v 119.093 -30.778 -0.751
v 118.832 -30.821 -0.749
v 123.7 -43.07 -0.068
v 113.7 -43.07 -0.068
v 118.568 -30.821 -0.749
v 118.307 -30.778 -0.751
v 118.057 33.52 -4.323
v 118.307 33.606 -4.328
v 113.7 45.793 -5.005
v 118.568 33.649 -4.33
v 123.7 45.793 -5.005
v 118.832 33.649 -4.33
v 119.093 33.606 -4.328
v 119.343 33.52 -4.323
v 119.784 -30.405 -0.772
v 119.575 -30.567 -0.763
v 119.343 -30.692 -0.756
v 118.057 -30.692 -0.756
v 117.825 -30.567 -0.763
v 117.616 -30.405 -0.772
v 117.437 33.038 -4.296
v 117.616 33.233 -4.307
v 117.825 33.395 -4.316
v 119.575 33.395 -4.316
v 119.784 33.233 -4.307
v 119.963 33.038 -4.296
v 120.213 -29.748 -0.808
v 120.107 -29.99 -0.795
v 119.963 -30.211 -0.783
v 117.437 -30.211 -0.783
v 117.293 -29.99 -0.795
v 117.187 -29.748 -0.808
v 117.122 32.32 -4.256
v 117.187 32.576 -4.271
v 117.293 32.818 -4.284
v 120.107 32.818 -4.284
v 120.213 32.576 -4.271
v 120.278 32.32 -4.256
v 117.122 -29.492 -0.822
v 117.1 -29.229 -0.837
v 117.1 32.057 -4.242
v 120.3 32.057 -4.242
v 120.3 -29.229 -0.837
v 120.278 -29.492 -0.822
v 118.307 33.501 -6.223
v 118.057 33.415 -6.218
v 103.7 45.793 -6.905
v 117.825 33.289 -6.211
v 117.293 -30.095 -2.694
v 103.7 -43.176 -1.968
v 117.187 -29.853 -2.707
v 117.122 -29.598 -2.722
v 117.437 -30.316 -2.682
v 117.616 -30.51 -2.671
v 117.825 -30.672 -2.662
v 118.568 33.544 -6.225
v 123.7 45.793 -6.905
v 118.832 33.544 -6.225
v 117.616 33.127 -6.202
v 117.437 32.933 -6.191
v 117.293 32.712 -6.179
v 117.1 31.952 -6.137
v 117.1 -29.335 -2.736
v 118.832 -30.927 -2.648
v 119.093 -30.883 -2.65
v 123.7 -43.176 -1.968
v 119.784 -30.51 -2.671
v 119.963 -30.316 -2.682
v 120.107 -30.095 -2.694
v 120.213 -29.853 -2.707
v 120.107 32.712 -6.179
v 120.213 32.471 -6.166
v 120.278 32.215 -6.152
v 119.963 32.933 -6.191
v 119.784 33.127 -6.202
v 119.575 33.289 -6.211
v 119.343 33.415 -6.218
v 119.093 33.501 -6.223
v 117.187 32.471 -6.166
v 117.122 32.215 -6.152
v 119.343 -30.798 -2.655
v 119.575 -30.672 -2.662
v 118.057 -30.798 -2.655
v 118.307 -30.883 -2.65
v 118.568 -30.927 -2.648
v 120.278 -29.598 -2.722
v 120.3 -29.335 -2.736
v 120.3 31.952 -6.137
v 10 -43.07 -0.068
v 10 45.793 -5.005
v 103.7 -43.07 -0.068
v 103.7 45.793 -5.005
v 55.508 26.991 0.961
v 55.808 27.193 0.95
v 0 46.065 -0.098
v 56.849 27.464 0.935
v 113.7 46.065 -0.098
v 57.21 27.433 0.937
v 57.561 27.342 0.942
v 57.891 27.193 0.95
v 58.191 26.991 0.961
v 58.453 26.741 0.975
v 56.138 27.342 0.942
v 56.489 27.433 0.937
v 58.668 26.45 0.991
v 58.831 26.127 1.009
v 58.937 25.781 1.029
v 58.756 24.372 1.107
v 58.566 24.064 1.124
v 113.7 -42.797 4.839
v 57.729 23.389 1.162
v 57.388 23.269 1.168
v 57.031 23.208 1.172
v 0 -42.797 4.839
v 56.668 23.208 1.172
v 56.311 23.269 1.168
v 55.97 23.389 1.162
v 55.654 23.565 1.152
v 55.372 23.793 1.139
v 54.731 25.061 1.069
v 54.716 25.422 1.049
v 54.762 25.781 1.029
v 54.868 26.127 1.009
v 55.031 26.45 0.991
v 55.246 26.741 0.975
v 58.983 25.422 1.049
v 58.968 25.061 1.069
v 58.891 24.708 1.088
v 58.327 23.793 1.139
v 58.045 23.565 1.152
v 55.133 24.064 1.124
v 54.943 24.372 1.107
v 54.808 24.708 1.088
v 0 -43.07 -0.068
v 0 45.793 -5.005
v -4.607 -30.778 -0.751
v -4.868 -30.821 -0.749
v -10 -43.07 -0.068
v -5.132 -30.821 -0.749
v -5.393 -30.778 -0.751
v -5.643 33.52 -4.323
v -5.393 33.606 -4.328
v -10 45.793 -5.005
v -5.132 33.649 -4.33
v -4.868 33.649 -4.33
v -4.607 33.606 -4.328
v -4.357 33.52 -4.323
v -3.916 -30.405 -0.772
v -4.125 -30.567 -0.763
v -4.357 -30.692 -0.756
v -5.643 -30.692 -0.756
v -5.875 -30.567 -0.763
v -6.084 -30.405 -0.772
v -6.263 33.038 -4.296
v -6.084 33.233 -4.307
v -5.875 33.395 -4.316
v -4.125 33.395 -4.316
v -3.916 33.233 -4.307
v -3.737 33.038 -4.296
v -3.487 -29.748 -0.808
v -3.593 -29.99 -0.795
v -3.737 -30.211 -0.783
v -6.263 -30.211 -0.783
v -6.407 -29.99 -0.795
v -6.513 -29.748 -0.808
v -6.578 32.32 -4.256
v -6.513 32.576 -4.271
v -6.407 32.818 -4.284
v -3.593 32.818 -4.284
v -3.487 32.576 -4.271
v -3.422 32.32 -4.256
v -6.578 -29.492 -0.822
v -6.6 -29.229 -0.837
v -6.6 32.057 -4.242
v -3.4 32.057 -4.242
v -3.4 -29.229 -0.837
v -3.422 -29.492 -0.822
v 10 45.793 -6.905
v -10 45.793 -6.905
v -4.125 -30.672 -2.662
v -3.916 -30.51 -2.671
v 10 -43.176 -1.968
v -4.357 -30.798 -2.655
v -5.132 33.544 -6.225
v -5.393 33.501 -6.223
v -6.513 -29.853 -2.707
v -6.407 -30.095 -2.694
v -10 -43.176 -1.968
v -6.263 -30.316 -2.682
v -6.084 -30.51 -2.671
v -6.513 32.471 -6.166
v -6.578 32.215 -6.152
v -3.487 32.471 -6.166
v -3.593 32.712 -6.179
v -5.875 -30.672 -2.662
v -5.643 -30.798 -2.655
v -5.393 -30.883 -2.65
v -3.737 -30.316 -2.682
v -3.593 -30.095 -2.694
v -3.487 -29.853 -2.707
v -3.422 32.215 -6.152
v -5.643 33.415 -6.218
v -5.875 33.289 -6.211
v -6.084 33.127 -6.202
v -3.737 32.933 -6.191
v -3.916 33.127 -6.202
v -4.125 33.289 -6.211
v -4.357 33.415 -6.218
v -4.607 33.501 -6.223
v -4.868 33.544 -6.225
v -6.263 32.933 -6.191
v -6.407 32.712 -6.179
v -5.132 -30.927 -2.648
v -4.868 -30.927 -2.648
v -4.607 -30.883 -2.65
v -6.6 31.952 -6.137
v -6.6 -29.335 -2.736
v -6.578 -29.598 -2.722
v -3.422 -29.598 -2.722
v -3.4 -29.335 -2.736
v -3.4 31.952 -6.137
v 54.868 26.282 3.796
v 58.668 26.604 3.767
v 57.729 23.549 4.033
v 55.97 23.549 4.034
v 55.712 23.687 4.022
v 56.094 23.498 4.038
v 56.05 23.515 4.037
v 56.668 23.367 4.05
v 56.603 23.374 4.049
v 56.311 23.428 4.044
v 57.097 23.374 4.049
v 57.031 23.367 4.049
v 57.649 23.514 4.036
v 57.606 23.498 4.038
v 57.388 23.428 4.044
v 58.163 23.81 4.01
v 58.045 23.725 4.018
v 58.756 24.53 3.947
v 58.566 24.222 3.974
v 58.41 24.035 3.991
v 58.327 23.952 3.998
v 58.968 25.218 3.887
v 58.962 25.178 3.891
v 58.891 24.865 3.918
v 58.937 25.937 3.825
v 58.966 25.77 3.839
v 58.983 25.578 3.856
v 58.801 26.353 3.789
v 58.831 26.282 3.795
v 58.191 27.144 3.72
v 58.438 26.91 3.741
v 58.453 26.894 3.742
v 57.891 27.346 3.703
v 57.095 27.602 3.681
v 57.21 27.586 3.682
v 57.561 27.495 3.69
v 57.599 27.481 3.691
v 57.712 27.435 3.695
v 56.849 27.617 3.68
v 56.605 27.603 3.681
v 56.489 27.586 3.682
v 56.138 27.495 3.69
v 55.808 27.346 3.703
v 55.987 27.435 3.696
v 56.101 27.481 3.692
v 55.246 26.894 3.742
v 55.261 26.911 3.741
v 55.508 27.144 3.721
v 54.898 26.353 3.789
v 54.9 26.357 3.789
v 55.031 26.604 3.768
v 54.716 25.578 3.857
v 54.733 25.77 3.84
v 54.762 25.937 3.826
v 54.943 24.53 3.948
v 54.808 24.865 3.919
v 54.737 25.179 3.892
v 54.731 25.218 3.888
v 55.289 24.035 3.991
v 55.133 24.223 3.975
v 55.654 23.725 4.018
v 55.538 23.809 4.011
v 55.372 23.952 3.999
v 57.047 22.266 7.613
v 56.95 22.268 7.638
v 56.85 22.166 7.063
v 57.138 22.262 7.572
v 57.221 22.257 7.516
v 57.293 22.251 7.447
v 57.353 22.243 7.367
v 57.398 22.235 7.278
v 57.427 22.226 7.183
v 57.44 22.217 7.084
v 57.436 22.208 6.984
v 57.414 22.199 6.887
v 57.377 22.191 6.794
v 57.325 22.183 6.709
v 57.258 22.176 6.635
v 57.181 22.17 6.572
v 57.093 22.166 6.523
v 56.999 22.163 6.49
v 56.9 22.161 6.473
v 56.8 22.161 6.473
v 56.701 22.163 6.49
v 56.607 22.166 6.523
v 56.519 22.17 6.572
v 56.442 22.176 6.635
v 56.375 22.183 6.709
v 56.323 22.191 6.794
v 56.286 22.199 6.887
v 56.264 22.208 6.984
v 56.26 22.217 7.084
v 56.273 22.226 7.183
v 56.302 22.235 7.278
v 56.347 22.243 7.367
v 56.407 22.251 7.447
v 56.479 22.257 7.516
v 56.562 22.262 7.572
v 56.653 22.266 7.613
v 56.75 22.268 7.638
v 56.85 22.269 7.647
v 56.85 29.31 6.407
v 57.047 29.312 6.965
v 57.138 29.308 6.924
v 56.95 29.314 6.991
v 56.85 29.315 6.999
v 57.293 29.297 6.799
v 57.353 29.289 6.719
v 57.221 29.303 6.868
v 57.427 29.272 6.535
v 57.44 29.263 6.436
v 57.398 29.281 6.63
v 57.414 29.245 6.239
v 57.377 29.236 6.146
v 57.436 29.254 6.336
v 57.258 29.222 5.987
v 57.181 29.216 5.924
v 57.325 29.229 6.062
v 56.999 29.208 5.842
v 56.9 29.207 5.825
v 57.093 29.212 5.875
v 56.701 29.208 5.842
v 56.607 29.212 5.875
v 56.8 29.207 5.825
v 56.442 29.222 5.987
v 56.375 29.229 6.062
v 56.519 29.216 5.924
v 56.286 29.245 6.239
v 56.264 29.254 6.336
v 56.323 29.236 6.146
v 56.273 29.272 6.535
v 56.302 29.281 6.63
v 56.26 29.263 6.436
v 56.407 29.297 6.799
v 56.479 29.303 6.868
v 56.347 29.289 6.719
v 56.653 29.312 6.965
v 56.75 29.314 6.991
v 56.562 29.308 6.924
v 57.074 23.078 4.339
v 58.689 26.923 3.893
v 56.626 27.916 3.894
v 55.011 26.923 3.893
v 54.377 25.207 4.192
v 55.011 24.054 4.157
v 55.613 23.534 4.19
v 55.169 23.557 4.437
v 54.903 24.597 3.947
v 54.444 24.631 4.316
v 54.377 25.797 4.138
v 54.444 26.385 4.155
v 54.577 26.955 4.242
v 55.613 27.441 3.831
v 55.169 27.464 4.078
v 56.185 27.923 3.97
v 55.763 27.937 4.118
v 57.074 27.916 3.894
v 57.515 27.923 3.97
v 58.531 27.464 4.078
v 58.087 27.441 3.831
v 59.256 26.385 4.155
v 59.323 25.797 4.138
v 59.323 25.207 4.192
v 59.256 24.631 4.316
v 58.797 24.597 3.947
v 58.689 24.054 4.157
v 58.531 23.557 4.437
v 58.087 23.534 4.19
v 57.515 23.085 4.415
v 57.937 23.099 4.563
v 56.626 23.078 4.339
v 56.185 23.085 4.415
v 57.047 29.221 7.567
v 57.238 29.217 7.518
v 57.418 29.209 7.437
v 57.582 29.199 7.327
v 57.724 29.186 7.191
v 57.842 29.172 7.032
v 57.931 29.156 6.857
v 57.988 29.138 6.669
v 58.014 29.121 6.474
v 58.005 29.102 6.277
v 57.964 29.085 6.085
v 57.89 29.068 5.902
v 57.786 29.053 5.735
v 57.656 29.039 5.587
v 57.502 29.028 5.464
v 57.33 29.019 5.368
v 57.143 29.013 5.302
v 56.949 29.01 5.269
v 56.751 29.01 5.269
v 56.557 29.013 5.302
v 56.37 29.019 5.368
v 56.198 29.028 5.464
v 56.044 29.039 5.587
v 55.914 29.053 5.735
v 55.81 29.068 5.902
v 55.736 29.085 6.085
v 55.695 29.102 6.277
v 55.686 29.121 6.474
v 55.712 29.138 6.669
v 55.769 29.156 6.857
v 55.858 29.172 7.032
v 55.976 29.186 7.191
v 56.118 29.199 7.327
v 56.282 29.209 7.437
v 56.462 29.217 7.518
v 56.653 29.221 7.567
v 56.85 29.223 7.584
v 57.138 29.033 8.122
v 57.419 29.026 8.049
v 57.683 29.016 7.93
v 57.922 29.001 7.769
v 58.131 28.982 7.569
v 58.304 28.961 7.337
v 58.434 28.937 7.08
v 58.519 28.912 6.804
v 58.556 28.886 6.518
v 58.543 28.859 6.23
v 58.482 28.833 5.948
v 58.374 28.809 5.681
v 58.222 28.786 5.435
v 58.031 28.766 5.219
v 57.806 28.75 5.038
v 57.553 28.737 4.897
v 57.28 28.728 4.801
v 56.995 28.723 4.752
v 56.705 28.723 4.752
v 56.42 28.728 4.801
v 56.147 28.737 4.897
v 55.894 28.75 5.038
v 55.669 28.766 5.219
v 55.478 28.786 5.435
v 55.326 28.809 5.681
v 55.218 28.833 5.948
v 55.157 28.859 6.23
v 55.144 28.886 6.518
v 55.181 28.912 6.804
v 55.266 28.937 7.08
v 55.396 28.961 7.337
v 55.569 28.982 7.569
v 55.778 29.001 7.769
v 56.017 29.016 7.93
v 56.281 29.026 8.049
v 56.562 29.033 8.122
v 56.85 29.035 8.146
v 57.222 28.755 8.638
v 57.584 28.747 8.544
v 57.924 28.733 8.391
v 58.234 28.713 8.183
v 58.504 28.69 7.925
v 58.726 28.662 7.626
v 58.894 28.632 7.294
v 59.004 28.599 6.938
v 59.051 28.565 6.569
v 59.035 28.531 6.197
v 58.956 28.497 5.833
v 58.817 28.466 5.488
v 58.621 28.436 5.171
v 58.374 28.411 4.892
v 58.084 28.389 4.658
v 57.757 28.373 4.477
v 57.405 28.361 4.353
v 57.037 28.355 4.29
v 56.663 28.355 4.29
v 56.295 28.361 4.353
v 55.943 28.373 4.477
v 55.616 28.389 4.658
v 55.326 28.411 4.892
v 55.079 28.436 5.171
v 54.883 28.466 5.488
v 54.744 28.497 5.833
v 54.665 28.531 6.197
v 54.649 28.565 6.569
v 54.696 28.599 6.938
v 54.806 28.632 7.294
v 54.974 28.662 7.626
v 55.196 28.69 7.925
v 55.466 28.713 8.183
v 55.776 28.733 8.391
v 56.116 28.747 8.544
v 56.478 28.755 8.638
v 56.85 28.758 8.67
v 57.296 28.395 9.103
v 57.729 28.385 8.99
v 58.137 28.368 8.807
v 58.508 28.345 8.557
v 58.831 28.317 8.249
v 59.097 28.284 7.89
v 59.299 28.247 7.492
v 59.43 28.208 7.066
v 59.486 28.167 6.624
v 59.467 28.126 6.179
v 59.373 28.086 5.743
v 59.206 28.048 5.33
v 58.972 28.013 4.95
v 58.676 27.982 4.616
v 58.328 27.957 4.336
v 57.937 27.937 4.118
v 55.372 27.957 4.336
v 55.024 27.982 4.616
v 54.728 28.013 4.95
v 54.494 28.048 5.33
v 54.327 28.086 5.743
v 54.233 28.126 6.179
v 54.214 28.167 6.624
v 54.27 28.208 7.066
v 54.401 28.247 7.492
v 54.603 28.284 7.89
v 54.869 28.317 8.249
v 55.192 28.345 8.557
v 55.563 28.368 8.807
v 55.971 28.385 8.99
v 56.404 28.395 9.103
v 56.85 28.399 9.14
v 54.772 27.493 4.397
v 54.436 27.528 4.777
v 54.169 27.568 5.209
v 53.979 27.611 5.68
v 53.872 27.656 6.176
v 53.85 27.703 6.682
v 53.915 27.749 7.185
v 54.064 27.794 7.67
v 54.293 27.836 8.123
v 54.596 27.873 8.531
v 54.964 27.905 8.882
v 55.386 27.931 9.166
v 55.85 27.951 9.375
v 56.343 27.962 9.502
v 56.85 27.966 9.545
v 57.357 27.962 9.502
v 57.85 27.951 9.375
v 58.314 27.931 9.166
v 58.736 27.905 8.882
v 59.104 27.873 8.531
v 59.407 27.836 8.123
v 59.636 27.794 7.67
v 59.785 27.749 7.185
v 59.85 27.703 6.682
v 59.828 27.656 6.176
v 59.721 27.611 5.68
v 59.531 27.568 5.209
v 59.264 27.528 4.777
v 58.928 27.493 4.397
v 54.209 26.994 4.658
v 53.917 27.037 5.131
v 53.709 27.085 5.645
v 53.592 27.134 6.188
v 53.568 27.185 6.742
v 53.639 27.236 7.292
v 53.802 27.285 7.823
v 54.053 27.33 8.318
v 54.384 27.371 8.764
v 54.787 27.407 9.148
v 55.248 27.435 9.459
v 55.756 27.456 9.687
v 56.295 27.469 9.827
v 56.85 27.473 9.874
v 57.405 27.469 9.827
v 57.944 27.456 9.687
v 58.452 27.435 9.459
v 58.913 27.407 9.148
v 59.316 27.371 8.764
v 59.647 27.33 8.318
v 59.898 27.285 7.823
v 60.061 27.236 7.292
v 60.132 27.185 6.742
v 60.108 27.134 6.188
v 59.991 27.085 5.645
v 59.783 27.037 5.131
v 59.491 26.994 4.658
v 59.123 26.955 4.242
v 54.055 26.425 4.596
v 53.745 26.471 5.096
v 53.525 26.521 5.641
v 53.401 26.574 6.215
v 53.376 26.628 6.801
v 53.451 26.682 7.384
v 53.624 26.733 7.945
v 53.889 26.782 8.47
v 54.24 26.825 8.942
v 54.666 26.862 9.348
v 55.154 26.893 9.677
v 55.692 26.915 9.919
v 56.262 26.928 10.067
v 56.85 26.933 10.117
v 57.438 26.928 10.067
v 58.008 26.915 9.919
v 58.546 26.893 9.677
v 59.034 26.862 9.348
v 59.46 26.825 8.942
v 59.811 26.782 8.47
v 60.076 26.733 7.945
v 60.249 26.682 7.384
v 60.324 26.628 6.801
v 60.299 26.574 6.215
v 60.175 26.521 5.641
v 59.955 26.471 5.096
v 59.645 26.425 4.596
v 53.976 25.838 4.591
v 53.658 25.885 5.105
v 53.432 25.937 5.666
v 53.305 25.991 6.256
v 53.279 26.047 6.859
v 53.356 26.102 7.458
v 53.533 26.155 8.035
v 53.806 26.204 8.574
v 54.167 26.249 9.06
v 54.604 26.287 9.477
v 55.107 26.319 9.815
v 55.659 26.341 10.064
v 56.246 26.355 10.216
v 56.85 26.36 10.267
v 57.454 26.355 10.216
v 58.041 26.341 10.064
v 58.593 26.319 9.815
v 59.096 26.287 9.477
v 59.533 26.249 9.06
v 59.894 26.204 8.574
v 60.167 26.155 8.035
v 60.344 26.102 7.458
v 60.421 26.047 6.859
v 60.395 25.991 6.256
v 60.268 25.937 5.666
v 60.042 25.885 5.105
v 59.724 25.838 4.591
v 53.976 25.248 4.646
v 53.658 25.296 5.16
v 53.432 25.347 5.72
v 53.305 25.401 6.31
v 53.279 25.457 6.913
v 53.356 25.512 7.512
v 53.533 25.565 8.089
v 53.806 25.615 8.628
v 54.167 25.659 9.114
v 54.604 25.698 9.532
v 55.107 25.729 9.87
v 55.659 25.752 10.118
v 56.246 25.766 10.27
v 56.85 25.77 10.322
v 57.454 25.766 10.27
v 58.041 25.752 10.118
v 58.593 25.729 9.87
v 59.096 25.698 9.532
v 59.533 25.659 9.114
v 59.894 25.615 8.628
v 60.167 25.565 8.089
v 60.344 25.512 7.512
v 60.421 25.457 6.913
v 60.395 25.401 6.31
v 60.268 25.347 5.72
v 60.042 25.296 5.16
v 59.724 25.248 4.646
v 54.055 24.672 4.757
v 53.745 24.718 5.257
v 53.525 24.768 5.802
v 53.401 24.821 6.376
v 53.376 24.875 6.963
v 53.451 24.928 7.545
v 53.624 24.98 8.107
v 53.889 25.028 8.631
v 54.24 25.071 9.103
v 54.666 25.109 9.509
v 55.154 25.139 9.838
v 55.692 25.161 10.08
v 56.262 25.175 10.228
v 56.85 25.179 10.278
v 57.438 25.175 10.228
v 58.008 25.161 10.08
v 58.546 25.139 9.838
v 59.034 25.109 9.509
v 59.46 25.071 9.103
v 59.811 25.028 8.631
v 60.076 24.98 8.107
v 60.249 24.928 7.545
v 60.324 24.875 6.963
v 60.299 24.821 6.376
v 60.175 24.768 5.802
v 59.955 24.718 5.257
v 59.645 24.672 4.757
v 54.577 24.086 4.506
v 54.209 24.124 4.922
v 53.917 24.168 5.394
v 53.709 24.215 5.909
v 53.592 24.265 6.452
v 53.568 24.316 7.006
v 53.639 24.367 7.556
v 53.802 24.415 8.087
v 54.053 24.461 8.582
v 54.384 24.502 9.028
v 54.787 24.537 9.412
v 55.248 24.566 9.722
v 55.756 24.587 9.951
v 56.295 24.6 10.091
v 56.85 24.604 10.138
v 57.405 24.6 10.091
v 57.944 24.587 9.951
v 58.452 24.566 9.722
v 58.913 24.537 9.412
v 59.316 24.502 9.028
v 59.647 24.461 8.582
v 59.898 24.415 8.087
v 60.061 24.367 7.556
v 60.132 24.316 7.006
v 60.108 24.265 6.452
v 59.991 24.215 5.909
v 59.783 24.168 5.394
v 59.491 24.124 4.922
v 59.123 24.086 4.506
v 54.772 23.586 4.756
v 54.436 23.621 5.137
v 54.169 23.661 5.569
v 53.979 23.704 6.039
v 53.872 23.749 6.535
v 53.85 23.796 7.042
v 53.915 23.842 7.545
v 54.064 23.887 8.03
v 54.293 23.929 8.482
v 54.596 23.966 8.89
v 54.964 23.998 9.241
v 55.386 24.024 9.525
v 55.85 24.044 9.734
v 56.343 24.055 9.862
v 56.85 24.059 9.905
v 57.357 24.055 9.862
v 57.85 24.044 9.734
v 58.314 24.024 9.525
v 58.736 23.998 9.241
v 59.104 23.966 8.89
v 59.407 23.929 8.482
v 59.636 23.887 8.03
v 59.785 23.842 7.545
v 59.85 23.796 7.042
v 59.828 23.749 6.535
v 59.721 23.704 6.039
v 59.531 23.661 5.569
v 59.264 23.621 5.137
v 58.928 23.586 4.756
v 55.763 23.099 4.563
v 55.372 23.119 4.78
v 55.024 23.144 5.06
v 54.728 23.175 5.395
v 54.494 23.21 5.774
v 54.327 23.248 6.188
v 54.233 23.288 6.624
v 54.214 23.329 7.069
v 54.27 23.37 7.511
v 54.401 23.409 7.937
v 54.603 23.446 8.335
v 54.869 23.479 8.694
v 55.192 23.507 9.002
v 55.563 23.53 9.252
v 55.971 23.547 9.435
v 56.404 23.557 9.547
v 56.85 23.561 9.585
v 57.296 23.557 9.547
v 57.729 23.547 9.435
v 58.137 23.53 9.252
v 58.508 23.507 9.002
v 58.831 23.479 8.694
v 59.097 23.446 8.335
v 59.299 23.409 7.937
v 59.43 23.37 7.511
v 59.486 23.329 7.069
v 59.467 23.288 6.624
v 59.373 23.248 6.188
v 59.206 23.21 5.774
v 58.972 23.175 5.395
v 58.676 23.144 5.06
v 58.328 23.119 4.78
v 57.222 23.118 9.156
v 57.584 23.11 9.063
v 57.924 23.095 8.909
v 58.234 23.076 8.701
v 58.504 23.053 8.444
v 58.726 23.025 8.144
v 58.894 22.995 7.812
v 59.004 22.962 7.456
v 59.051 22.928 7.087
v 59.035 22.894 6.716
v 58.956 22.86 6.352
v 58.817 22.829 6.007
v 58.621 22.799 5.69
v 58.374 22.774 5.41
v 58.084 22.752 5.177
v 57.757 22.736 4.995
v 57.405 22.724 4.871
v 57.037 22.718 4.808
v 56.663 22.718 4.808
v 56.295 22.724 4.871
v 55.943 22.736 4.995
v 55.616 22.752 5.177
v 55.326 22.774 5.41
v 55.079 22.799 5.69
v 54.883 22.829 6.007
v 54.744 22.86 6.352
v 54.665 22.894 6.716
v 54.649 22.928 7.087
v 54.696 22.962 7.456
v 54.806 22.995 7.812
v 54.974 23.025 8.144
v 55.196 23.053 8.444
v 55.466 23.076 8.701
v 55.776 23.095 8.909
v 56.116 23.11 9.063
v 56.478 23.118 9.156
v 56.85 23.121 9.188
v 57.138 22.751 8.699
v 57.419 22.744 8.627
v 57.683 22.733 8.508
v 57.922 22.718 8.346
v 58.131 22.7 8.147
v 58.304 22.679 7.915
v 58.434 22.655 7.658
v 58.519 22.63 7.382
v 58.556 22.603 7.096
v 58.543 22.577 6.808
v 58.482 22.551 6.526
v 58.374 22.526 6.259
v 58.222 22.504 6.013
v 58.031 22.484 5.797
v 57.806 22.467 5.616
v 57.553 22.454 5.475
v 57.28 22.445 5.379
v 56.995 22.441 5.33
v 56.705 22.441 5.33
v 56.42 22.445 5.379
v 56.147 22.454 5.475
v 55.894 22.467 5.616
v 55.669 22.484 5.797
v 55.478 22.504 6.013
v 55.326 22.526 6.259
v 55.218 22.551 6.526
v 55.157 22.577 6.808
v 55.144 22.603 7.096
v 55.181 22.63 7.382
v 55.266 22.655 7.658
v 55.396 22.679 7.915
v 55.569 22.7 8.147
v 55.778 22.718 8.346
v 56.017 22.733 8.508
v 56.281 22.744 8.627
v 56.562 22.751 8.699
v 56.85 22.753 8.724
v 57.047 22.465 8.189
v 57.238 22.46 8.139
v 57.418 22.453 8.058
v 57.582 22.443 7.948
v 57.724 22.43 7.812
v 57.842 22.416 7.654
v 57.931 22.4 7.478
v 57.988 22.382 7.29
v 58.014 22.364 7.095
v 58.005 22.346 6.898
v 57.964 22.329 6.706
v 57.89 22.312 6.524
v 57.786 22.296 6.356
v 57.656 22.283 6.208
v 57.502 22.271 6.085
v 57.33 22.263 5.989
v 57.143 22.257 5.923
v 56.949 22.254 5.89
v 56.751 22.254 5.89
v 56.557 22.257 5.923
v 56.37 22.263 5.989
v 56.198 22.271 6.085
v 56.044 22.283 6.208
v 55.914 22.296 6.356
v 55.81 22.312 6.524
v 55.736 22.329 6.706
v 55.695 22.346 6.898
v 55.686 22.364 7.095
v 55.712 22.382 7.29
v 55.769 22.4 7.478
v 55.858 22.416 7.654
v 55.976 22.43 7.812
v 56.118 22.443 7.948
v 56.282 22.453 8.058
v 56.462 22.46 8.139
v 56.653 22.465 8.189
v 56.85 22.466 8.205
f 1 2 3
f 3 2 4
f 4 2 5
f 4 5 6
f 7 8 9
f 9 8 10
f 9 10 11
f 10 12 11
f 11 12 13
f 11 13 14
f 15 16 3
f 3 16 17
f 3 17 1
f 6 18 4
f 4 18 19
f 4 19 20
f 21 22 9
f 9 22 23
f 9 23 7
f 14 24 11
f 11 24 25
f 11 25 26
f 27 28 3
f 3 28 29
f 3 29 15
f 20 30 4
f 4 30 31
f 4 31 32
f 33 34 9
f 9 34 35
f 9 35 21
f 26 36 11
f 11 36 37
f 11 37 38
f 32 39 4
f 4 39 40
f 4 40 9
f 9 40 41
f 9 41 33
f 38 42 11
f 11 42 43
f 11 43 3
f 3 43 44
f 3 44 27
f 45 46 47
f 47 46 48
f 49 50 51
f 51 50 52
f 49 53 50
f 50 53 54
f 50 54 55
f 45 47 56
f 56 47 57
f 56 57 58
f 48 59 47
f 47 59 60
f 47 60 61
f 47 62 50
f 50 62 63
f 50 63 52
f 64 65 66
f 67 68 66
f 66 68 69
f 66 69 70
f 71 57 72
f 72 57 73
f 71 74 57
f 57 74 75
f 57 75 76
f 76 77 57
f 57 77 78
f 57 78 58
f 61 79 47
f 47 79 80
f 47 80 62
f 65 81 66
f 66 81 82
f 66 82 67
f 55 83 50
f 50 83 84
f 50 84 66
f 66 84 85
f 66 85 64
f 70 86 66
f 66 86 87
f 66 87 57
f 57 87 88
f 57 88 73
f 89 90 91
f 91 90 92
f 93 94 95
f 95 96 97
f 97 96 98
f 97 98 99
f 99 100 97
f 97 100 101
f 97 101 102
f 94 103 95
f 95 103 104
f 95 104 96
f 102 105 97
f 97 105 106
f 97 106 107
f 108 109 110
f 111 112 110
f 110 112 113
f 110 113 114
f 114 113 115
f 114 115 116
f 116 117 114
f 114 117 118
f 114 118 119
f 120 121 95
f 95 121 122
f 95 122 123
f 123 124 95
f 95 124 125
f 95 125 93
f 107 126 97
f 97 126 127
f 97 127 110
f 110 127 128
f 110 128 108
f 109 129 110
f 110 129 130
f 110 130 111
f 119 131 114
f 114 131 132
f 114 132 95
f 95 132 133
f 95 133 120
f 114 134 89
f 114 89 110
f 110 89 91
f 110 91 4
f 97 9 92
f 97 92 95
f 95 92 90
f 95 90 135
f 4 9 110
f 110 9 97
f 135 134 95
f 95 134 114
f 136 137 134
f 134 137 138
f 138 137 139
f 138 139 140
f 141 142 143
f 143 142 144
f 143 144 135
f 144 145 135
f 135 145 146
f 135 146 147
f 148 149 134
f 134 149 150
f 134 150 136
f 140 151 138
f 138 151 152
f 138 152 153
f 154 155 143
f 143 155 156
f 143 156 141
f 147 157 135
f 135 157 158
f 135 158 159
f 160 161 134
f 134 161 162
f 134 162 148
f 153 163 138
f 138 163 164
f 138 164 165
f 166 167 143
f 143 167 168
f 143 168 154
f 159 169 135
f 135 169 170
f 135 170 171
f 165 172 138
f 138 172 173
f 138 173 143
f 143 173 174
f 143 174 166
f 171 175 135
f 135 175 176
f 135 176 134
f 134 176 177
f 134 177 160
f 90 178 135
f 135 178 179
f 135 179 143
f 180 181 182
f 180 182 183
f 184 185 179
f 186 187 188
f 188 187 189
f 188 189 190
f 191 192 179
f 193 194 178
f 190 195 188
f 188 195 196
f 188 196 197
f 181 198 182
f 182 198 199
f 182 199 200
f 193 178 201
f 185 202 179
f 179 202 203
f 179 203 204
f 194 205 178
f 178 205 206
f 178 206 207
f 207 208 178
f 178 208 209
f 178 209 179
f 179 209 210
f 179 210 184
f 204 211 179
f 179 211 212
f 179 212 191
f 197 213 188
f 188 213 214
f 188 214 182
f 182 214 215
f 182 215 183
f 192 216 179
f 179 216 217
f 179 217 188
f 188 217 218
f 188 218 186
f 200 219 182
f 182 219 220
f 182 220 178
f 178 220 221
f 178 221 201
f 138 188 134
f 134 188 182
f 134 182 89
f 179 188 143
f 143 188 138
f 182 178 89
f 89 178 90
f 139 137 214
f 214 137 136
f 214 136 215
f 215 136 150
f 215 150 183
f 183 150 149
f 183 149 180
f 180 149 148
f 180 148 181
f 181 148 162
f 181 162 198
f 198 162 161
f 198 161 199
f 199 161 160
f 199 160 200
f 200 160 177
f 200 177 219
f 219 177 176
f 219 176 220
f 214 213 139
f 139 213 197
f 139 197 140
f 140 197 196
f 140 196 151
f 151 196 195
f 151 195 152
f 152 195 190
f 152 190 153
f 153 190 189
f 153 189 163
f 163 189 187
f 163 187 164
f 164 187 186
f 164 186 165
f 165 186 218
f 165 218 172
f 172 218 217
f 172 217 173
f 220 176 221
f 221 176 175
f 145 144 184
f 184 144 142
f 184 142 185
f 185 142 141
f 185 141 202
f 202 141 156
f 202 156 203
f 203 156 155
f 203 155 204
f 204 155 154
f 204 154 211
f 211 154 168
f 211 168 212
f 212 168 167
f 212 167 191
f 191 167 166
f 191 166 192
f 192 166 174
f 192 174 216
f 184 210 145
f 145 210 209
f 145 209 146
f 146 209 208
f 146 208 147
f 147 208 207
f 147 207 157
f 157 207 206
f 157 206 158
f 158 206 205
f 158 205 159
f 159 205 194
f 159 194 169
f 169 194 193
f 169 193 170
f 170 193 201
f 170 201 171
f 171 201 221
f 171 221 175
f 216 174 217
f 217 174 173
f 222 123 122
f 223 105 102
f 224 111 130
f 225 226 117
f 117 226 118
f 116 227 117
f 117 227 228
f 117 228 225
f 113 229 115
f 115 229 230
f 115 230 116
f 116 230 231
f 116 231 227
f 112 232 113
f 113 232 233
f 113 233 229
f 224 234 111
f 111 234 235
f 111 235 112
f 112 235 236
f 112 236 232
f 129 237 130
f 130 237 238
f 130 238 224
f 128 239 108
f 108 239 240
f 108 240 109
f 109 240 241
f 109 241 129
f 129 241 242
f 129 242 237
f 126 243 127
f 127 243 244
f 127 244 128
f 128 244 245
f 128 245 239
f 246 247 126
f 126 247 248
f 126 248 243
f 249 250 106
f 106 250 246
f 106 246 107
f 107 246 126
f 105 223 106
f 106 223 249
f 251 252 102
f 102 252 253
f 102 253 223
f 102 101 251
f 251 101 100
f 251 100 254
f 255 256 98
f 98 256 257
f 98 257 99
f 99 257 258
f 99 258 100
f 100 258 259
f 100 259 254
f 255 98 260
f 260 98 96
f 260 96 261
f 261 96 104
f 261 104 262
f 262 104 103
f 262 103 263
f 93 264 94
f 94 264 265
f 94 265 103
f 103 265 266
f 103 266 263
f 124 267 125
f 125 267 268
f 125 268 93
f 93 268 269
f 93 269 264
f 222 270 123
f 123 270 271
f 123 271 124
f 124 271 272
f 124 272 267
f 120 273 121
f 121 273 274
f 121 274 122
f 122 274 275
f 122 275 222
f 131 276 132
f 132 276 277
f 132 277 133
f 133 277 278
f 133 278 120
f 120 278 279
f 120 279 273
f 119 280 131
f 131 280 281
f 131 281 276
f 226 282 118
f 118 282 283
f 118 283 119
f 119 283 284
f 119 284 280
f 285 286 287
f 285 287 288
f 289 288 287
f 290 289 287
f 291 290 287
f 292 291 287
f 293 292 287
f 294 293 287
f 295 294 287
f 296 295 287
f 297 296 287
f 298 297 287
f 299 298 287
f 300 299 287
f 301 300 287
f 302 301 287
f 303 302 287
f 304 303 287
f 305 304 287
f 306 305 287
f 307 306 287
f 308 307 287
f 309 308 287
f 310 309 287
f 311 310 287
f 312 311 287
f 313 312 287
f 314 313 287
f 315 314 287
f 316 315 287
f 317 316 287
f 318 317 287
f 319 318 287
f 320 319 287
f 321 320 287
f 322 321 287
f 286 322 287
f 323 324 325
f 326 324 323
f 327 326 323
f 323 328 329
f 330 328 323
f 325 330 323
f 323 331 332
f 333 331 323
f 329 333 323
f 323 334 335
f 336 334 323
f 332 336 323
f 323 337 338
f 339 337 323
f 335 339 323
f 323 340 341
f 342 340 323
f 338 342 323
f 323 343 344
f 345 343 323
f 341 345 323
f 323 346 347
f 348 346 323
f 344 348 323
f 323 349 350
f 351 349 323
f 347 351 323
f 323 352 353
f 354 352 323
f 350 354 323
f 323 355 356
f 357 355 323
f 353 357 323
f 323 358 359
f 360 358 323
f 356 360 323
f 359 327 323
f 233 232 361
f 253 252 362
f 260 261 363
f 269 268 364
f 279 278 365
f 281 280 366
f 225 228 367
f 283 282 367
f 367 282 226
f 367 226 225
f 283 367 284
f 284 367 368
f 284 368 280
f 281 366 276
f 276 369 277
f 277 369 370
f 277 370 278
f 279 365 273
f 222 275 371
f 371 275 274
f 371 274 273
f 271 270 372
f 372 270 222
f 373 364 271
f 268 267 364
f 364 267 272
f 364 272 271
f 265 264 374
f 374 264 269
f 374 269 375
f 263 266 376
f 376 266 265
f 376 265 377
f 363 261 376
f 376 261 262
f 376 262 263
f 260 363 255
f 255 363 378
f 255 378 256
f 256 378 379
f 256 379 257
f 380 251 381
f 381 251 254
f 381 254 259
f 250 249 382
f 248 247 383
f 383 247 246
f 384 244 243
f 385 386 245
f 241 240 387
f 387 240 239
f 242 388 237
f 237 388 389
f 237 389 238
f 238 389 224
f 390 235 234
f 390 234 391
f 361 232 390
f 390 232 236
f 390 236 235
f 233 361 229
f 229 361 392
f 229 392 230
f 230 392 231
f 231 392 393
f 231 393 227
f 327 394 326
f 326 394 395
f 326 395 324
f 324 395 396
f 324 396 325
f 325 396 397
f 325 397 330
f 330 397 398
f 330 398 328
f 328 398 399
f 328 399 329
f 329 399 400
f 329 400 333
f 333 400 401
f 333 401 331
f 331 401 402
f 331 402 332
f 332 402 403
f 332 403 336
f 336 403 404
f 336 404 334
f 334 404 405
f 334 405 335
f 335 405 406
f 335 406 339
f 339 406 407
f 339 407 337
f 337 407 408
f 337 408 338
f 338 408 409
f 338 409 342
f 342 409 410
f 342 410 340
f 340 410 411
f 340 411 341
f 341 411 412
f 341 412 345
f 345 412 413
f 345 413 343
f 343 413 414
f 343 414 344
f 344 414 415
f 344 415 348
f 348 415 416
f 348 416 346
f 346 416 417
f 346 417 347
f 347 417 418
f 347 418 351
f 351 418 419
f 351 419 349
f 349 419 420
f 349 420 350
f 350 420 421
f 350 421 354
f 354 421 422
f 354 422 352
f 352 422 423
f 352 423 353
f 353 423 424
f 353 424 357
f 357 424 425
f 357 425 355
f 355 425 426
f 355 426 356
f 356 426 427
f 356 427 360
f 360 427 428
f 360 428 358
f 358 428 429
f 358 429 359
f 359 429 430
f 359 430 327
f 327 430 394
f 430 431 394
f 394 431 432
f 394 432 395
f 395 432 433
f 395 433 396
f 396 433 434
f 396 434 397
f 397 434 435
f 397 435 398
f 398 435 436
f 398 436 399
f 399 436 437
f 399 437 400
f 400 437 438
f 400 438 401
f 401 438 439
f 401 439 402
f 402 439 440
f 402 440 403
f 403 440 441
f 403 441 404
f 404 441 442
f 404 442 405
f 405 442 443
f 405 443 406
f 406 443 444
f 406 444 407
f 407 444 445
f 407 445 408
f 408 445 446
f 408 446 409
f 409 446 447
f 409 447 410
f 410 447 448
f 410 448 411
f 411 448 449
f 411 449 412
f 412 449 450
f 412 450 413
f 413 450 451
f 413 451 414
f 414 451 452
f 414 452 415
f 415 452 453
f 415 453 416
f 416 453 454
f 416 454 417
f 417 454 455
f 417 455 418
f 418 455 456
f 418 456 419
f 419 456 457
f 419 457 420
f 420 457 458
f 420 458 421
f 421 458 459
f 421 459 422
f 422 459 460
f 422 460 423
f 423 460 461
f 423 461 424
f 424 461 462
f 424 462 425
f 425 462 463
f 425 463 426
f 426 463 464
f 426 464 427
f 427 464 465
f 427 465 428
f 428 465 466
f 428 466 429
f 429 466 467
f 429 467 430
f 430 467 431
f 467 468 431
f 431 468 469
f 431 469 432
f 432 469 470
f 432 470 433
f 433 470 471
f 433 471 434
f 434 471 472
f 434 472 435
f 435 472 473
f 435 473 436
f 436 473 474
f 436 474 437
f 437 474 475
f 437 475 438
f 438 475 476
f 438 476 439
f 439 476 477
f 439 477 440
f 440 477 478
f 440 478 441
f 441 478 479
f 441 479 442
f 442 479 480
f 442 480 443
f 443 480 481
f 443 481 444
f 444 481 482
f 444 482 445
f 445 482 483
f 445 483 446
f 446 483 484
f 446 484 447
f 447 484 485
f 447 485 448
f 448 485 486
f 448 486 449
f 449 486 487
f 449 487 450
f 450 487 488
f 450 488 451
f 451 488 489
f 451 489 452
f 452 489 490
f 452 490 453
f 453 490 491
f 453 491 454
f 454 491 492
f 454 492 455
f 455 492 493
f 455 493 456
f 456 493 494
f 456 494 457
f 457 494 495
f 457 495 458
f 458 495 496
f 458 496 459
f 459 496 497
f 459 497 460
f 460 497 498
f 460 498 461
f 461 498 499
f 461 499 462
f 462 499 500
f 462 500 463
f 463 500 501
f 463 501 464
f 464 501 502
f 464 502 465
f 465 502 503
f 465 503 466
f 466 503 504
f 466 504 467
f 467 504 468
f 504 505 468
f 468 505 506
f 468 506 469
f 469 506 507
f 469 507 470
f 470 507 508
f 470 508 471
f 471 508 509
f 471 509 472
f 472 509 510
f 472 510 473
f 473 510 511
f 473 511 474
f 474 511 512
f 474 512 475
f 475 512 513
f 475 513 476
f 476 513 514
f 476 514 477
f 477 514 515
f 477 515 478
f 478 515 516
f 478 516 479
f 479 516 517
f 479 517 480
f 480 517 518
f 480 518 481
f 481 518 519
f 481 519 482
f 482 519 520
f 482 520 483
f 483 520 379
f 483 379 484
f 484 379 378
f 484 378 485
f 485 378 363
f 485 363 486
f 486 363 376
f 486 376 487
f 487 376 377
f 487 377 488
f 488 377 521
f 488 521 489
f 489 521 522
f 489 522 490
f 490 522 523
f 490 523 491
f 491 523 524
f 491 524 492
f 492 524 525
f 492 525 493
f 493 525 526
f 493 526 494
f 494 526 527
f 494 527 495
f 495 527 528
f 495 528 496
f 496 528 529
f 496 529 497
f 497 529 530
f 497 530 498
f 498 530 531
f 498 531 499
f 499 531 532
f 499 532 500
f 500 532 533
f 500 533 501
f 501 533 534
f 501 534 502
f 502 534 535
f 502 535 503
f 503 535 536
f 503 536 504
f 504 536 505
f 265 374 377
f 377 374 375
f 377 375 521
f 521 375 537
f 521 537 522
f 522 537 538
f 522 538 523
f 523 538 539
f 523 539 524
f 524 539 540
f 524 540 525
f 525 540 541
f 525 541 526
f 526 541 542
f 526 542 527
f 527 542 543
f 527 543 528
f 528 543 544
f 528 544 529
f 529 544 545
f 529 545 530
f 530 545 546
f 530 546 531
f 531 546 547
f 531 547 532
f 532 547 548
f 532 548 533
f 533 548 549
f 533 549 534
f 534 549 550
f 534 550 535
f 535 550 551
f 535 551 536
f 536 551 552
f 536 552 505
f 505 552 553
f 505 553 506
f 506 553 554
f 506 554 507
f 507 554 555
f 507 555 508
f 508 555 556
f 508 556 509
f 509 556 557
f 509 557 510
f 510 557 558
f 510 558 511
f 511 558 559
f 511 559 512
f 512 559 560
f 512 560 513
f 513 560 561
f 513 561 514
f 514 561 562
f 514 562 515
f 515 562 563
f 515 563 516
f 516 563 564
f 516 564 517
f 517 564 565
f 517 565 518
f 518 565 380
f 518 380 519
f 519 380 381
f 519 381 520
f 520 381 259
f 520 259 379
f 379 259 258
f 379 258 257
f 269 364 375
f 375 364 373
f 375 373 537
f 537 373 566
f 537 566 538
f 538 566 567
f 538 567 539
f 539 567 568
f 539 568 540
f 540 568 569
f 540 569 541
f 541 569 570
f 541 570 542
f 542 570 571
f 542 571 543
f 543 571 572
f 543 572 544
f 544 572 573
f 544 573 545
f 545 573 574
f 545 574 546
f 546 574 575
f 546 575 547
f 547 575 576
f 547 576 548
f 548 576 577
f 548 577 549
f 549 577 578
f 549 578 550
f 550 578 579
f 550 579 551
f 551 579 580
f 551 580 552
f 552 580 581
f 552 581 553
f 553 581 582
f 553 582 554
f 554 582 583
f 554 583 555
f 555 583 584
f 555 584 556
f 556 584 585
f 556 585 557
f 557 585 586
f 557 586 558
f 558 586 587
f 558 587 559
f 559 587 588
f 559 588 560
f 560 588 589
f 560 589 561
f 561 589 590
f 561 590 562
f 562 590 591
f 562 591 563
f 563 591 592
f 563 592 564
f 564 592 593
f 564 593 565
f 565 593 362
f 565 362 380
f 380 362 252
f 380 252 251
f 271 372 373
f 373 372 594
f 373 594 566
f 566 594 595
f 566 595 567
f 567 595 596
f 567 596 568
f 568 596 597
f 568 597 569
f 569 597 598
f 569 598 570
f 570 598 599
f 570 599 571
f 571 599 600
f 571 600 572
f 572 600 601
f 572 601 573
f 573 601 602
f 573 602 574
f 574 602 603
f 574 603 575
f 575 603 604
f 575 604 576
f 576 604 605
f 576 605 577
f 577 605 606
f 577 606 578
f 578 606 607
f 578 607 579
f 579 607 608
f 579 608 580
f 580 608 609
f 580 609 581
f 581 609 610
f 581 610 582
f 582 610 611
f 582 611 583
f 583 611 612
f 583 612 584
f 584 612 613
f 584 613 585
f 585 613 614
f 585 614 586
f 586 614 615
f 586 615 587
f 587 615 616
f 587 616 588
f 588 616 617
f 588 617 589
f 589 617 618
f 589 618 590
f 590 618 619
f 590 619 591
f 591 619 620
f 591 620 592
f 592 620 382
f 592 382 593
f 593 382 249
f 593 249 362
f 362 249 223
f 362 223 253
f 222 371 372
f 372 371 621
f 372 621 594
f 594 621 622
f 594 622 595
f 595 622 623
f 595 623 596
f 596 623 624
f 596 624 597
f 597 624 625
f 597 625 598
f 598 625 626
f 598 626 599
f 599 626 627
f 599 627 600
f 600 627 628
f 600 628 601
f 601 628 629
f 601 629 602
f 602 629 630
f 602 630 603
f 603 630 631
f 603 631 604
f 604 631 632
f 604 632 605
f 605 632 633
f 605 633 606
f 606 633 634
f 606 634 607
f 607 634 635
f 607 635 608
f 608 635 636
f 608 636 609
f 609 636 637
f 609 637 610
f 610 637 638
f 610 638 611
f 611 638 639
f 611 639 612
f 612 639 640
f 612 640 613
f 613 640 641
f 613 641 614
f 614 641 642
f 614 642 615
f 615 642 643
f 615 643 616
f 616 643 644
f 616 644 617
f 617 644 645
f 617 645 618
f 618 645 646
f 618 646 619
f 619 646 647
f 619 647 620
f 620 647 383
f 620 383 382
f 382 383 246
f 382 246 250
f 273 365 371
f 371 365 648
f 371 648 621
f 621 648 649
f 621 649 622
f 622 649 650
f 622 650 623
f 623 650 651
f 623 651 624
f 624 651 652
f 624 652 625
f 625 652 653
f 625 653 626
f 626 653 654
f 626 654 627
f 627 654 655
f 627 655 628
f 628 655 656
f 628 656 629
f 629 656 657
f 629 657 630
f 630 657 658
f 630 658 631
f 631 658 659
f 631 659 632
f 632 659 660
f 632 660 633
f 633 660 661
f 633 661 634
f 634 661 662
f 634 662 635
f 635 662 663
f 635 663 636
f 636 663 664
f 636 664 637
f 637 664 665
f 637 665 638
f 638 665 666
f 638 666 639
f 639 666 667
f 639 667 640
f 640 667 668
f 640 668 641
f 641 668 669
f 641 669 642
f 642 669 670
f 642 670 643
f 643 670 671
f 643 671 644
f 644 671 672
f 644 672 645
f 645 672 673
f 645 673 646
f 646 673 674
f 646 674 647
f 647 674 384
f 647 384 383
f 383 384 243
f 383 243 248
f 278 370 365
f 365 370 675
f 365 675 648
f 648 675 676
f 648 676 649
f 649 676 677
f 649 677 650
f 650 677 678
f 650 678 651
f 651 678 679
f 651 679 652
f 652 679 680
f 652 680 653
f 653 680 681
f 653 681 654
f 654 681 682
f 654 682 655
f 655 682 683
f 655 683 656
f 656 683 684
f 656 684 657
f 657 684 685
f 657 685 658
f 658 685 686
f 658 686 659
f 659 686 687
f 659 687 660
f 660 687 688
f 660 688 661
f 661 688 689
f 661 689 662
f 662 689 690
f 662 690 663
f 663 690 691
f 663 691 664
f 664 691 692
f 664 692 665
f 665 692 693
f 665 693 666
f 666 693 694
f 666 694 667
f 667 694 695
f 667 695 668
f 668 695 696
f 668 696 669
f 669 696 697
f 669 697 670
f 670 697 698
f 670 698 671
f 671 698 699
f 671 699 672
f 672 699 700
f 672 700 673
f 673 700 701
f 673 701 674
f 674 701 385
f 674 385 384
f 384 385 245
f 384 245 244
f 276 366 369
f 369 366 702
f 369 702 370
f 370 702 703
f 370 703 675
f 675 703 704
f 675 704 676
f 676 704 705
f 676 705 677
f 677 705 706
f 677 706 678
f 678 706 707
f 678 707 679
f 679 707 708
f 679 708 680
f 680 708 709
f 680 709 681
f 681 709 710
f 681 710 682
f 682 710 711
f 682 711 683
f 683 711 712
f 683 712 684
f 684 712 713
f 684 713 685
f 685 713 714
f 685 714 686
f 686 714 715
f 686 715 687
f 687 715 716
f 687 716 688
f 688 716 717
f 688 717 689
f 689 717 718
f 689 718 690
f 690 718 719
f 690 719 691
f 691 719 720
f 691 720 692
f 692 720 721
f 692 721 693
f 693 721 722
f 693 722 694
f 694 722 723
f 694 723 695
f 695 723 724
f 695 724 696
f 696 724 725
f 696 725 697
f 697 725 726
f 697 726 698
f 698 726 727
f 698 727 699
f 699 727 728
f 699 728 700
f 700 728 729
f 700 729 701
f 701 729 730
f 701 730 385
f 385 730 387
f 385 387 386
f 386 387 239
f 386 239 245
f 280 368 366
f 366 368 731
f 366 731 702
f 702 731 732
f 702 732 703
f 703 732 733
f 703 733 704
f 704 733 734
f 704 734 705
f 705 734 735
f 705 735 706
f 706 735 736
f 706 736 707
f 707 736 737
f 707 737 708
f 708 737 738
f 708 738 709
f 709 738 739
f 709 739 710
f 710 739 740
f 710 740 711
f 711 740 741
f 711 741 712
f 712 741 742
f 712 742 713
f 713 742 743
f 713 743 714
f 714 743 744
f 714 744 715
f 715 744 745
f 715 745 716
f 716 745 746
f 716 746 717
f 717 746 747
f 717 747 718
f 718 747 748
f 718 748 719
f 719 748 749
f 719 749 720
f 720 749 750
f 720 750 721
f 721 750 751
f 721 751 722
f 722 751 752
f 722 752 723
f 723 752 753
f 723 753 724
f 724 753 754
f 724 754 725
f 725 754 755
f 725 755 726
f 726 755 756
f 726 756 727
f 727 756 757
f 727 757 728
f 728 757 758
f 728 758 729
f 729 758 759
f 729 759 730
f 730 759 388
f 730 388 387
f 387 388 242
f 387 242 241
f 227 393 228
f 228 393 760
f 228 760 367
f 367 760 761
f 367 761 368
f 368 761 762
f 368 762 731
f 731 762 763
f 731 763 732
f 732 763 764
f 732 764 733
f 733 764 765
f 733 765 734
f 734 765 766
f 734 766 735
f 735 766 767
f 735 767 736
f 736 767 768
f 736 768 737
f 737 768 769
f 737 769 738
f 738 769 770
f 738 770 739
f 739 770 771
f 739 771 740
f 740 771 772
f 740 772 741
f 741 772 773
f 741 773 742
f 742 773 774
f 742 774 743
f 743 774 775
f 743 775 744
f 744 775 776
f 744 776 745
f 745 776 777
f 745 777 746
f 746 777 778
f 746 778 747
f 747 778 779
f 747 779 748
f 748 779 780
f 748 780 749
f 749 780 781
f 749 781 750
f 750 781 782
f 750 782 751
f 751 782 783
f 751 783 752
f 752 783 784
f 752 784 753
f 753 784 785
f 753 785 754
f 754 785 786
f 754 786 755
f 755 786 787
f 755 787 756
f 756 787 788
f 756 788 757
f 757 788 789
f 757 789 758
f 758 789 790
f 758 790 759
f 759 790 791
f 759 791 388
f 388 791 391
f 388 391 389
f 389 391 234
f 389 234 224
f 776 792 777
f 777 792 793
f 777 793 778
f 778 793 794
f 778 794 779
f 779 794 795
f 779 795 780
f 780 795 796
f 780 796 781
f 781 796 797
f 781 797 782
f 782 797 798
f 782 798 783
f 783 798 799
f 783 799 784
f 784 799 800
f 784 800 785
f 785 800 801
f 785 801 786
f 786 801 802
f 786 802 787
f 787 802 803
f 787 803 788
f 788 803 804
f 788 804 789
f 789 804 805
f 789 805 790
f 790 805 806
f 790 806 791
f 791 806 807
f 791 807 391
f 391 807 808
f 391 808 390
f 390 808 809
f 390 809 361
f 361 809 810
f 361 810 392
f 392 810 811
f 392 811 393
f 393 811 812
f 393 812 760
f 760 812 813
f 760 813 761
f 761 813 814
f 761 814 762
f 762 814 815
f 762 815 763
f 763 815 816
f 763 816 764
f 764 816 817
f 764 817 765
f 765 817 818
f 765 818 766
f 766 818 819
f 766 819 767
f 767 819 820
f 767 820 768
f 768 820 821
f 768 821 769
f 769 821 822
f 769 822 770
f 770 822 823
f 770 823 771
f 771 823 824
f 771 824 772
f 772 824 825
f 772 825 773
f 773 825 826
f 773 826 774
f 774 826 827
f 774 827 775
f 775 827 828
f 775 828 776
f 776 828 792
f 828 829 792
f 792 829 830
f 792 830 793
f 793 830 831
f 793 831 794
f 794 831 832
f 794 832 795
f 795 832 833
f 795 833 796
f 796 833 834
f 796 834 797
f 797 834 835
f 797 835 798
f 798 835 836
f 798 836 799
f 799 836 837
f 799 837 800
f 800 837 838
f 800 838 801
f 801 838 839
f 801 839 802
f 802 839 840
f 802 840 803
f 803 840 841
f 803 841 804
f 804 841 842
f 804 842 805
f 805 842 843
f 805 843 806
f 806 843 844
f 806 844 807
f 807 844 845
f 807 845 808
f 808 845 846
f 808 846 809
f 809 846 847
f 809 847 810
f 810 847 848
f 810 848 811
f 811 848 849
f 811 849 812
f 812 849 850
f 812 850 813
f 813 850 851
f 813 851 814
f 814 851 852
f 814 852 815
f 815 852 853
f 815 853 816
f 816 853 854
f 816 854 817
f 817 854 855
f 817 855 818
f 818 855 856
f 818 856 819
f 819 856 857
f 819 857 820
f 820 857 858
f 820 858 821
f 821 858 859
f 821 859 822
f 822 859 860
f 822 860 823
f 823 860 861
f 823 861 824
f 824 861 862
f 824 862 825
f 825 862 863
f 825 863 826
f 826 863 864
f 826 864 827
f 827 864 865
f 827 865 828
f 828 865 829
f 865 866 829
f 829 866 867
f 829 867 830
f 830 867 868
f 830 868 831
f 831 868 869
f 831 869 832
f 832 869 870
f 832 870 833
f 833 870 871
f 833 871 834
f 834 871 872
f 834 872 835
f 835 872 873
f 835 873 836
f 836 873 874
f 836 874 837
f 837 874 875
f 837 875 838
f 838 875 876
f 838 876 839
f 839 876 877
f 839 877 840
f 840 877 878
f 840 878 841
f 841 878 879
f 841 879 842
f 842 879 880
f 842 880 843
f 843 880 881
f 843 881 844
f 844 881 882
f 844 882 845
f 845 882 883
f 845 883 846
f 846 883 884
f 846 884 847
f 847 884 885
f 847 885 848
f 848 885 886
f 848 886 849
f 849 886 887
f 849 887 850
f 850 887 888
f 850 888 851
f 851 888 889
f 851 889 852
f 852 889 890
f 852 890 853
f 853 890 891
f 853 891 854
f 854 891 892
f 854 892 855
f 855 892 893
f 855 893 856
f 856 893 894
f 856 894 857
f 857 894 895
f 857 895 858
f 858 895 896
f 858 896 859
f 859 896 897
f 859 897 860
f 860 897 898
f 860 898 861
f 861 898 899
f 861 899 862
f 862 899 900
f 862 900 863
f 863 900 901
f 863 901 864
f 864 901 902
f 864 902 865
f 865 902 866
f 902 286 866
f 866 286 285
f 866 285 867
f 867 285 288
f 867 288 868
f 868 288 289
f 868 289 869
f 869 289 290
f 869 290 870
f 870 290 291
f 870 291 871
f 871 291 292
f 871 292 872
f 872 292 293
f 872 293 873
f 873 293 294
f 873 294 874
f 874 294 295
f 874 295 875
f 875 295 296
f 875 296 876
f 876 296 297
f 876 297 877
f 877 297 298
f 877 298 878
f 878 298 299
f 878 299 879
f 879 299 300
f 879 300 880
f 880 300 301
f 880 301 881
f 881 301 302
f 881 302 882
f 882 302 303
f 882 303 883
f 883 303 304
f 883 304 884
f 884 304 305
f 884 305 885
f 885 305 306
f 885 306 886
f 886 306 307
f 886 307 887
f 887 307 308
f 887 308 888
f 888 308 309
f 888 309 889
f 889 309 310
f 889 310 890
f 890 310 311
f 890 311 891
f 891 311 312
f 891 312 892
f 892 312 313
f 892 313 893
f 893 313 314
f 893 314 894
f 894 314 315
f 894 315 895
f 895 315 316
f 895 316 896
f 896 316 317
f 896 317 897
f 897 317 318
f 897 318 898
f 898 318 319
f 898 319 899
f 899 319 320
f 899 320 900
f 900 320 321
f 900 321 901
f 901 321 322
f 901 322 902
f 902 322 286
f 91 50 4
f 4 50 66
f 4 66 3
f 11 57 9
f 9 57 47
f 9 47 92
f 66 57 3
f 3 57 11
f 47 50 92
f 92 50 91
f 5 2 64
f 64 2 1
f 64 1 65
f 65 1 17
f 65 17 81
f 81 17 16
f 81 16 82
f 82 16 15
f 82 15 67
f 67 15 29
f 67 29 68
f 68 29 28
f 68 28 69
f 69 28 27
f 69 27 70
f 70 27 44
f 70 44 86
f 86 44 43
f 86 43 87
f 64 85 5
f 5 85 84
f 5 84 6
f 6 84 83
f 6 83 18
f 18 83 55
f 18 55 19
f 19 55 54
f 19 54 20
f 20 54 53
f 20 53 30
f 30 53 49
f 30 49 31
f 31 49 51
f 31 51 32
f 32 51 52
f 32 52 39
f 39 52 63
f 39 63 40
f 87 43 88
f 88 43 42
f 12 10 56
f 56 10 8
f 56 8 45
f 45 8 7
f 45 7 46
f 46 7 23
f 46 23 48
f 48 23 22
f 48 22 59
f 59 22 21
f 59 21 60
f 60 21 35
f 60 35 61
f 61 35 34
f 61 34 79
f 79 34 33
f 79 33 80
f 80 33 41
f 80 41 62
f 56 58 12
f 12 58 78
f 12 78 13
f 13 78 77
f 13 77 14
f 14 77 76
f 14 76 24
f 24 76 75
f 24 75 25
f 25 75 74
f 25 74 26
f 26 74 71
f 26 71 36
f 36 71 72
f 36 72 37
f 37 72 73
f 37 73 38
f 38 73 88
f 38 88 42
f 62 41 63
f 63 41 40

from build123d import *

# Parameters (mm, degrees)
BOSS_EXTRU_1_DEPTH      = 113.7
BOSS_EXTRU_2_DEPTH      = 10
ENL_V_MAT_EXTRU_1_DEPTH = 10
ESQUISSE7_R             = 2.135429921
BOSS_EXTRU_3_DEPTH      = 8


with BuildPart() as part:
    # Esquisse1 → Boss.-Extru.1 (new body)
    with BuildSketch(Plane(origin=(0, 0, 0), x_dir=(0, 0, -1), z_dir=(1, 0, 0))):
        Polygon((0.098261178, 46.06547401), (5.004980628, 45.792878485), (0.068148881, -43.07009295), (-4.838570569, -42.797497425), align=None)
    extrude(amount=BOSS_EXTRU_1_DEPTH)

    # Esquisse4 → Boss.-Extru.2 (add, symmetric)
    with BuildSketch(Plane.ZY):
        Polygon((-5.004980628, 45.792878485), (-6.904980628, 45.792878485), (-1.968148881, -43.175523419), (-0.068148881, -43.07009295), align=None)
    boss_extru_2 = extrude(amount=BOSS_EXTRU_2_DEPTH, both=True)

    # Esquisse5 → Enlèv. mat.-Extru.1 (cut)
    with BuildSketch(Plane(origin=(0, -0.241410847, -4.350550784), x_dir=(-1, 0, 0), z_dir=(0, -0.05540448773291252, -0.9984639917087915))):
        with BuildLine():
            Line((3.4, -29.138054447), (3.4, 32.243000428))
            ThreePointArc((3.4, 32.243000428), (5, 33.843000428), (6.6, 32.243000428))
            Line((6.6, 32.243000428), (6.6, -29.138054447))
            ThreePointArc((6.6, -29.138054447), (5, -30.738054447), (3.4, -29.138054447))
        make_face()
    enl_v_mat_extru_1 = extrude(amount=-ENL_V_MAT_EXTRU_1_DEPTH, mode=Mode.SUBTRACT)

    # Esquisse7 → Boss.-Extru.3 (add)
    with BuildSketch(Plane(origin=(0, 0.136297763, 2.453359725), x_dir=(1, 0, 0), z_dir=(0, 0.0554700196225224, 0.9984603532054125))):
        with Locations(Location((56.8495, 25.234545409, 0), (0, 0, 90))):
            Circle(ESQUISSE7_R)
    extrude(amount=BOSS_EXTRU_3_DEPTH)

    # Esquisse8 → Révolution4 (revolve)
    with BuildSketch(Plane(origin=(56.85, 0, 0), x_dir=(0, 0, -1), z_dir=(1, 0, 0))):
        with BuildLine():
            Line((-6.406620571, 29.309512271), (-7.063469335, 22.166281969))
            ThreePointArc((-7.063469335, 22.166281969), (-10.306660104, 26.066321502), (-6.406620571, 29.309512271))
        make_face()
    revolve(axis=Axis((56.85, 29.309512271, 6.406620571), (0, -0.9957988523704411, 0.09156771056279951)))

    # Symétrie1: Boss.-Extru.2, Enlèv. mat.-Extru.1 across plane
    add(boss_extru_2.mirror(Plane(origin=(56.85, 0, 0), x_dir=(0, 0, 1), z_dir=(1, 0, 0))))
    add(enl_v_mat_extru_1.mirror(Plane(origin=(56.85, 0, 0), x_dir=(0, 0, 1), z_dir=(1, 0, 0))), mode=Mode.SUBTRACT)


solid = part.part
